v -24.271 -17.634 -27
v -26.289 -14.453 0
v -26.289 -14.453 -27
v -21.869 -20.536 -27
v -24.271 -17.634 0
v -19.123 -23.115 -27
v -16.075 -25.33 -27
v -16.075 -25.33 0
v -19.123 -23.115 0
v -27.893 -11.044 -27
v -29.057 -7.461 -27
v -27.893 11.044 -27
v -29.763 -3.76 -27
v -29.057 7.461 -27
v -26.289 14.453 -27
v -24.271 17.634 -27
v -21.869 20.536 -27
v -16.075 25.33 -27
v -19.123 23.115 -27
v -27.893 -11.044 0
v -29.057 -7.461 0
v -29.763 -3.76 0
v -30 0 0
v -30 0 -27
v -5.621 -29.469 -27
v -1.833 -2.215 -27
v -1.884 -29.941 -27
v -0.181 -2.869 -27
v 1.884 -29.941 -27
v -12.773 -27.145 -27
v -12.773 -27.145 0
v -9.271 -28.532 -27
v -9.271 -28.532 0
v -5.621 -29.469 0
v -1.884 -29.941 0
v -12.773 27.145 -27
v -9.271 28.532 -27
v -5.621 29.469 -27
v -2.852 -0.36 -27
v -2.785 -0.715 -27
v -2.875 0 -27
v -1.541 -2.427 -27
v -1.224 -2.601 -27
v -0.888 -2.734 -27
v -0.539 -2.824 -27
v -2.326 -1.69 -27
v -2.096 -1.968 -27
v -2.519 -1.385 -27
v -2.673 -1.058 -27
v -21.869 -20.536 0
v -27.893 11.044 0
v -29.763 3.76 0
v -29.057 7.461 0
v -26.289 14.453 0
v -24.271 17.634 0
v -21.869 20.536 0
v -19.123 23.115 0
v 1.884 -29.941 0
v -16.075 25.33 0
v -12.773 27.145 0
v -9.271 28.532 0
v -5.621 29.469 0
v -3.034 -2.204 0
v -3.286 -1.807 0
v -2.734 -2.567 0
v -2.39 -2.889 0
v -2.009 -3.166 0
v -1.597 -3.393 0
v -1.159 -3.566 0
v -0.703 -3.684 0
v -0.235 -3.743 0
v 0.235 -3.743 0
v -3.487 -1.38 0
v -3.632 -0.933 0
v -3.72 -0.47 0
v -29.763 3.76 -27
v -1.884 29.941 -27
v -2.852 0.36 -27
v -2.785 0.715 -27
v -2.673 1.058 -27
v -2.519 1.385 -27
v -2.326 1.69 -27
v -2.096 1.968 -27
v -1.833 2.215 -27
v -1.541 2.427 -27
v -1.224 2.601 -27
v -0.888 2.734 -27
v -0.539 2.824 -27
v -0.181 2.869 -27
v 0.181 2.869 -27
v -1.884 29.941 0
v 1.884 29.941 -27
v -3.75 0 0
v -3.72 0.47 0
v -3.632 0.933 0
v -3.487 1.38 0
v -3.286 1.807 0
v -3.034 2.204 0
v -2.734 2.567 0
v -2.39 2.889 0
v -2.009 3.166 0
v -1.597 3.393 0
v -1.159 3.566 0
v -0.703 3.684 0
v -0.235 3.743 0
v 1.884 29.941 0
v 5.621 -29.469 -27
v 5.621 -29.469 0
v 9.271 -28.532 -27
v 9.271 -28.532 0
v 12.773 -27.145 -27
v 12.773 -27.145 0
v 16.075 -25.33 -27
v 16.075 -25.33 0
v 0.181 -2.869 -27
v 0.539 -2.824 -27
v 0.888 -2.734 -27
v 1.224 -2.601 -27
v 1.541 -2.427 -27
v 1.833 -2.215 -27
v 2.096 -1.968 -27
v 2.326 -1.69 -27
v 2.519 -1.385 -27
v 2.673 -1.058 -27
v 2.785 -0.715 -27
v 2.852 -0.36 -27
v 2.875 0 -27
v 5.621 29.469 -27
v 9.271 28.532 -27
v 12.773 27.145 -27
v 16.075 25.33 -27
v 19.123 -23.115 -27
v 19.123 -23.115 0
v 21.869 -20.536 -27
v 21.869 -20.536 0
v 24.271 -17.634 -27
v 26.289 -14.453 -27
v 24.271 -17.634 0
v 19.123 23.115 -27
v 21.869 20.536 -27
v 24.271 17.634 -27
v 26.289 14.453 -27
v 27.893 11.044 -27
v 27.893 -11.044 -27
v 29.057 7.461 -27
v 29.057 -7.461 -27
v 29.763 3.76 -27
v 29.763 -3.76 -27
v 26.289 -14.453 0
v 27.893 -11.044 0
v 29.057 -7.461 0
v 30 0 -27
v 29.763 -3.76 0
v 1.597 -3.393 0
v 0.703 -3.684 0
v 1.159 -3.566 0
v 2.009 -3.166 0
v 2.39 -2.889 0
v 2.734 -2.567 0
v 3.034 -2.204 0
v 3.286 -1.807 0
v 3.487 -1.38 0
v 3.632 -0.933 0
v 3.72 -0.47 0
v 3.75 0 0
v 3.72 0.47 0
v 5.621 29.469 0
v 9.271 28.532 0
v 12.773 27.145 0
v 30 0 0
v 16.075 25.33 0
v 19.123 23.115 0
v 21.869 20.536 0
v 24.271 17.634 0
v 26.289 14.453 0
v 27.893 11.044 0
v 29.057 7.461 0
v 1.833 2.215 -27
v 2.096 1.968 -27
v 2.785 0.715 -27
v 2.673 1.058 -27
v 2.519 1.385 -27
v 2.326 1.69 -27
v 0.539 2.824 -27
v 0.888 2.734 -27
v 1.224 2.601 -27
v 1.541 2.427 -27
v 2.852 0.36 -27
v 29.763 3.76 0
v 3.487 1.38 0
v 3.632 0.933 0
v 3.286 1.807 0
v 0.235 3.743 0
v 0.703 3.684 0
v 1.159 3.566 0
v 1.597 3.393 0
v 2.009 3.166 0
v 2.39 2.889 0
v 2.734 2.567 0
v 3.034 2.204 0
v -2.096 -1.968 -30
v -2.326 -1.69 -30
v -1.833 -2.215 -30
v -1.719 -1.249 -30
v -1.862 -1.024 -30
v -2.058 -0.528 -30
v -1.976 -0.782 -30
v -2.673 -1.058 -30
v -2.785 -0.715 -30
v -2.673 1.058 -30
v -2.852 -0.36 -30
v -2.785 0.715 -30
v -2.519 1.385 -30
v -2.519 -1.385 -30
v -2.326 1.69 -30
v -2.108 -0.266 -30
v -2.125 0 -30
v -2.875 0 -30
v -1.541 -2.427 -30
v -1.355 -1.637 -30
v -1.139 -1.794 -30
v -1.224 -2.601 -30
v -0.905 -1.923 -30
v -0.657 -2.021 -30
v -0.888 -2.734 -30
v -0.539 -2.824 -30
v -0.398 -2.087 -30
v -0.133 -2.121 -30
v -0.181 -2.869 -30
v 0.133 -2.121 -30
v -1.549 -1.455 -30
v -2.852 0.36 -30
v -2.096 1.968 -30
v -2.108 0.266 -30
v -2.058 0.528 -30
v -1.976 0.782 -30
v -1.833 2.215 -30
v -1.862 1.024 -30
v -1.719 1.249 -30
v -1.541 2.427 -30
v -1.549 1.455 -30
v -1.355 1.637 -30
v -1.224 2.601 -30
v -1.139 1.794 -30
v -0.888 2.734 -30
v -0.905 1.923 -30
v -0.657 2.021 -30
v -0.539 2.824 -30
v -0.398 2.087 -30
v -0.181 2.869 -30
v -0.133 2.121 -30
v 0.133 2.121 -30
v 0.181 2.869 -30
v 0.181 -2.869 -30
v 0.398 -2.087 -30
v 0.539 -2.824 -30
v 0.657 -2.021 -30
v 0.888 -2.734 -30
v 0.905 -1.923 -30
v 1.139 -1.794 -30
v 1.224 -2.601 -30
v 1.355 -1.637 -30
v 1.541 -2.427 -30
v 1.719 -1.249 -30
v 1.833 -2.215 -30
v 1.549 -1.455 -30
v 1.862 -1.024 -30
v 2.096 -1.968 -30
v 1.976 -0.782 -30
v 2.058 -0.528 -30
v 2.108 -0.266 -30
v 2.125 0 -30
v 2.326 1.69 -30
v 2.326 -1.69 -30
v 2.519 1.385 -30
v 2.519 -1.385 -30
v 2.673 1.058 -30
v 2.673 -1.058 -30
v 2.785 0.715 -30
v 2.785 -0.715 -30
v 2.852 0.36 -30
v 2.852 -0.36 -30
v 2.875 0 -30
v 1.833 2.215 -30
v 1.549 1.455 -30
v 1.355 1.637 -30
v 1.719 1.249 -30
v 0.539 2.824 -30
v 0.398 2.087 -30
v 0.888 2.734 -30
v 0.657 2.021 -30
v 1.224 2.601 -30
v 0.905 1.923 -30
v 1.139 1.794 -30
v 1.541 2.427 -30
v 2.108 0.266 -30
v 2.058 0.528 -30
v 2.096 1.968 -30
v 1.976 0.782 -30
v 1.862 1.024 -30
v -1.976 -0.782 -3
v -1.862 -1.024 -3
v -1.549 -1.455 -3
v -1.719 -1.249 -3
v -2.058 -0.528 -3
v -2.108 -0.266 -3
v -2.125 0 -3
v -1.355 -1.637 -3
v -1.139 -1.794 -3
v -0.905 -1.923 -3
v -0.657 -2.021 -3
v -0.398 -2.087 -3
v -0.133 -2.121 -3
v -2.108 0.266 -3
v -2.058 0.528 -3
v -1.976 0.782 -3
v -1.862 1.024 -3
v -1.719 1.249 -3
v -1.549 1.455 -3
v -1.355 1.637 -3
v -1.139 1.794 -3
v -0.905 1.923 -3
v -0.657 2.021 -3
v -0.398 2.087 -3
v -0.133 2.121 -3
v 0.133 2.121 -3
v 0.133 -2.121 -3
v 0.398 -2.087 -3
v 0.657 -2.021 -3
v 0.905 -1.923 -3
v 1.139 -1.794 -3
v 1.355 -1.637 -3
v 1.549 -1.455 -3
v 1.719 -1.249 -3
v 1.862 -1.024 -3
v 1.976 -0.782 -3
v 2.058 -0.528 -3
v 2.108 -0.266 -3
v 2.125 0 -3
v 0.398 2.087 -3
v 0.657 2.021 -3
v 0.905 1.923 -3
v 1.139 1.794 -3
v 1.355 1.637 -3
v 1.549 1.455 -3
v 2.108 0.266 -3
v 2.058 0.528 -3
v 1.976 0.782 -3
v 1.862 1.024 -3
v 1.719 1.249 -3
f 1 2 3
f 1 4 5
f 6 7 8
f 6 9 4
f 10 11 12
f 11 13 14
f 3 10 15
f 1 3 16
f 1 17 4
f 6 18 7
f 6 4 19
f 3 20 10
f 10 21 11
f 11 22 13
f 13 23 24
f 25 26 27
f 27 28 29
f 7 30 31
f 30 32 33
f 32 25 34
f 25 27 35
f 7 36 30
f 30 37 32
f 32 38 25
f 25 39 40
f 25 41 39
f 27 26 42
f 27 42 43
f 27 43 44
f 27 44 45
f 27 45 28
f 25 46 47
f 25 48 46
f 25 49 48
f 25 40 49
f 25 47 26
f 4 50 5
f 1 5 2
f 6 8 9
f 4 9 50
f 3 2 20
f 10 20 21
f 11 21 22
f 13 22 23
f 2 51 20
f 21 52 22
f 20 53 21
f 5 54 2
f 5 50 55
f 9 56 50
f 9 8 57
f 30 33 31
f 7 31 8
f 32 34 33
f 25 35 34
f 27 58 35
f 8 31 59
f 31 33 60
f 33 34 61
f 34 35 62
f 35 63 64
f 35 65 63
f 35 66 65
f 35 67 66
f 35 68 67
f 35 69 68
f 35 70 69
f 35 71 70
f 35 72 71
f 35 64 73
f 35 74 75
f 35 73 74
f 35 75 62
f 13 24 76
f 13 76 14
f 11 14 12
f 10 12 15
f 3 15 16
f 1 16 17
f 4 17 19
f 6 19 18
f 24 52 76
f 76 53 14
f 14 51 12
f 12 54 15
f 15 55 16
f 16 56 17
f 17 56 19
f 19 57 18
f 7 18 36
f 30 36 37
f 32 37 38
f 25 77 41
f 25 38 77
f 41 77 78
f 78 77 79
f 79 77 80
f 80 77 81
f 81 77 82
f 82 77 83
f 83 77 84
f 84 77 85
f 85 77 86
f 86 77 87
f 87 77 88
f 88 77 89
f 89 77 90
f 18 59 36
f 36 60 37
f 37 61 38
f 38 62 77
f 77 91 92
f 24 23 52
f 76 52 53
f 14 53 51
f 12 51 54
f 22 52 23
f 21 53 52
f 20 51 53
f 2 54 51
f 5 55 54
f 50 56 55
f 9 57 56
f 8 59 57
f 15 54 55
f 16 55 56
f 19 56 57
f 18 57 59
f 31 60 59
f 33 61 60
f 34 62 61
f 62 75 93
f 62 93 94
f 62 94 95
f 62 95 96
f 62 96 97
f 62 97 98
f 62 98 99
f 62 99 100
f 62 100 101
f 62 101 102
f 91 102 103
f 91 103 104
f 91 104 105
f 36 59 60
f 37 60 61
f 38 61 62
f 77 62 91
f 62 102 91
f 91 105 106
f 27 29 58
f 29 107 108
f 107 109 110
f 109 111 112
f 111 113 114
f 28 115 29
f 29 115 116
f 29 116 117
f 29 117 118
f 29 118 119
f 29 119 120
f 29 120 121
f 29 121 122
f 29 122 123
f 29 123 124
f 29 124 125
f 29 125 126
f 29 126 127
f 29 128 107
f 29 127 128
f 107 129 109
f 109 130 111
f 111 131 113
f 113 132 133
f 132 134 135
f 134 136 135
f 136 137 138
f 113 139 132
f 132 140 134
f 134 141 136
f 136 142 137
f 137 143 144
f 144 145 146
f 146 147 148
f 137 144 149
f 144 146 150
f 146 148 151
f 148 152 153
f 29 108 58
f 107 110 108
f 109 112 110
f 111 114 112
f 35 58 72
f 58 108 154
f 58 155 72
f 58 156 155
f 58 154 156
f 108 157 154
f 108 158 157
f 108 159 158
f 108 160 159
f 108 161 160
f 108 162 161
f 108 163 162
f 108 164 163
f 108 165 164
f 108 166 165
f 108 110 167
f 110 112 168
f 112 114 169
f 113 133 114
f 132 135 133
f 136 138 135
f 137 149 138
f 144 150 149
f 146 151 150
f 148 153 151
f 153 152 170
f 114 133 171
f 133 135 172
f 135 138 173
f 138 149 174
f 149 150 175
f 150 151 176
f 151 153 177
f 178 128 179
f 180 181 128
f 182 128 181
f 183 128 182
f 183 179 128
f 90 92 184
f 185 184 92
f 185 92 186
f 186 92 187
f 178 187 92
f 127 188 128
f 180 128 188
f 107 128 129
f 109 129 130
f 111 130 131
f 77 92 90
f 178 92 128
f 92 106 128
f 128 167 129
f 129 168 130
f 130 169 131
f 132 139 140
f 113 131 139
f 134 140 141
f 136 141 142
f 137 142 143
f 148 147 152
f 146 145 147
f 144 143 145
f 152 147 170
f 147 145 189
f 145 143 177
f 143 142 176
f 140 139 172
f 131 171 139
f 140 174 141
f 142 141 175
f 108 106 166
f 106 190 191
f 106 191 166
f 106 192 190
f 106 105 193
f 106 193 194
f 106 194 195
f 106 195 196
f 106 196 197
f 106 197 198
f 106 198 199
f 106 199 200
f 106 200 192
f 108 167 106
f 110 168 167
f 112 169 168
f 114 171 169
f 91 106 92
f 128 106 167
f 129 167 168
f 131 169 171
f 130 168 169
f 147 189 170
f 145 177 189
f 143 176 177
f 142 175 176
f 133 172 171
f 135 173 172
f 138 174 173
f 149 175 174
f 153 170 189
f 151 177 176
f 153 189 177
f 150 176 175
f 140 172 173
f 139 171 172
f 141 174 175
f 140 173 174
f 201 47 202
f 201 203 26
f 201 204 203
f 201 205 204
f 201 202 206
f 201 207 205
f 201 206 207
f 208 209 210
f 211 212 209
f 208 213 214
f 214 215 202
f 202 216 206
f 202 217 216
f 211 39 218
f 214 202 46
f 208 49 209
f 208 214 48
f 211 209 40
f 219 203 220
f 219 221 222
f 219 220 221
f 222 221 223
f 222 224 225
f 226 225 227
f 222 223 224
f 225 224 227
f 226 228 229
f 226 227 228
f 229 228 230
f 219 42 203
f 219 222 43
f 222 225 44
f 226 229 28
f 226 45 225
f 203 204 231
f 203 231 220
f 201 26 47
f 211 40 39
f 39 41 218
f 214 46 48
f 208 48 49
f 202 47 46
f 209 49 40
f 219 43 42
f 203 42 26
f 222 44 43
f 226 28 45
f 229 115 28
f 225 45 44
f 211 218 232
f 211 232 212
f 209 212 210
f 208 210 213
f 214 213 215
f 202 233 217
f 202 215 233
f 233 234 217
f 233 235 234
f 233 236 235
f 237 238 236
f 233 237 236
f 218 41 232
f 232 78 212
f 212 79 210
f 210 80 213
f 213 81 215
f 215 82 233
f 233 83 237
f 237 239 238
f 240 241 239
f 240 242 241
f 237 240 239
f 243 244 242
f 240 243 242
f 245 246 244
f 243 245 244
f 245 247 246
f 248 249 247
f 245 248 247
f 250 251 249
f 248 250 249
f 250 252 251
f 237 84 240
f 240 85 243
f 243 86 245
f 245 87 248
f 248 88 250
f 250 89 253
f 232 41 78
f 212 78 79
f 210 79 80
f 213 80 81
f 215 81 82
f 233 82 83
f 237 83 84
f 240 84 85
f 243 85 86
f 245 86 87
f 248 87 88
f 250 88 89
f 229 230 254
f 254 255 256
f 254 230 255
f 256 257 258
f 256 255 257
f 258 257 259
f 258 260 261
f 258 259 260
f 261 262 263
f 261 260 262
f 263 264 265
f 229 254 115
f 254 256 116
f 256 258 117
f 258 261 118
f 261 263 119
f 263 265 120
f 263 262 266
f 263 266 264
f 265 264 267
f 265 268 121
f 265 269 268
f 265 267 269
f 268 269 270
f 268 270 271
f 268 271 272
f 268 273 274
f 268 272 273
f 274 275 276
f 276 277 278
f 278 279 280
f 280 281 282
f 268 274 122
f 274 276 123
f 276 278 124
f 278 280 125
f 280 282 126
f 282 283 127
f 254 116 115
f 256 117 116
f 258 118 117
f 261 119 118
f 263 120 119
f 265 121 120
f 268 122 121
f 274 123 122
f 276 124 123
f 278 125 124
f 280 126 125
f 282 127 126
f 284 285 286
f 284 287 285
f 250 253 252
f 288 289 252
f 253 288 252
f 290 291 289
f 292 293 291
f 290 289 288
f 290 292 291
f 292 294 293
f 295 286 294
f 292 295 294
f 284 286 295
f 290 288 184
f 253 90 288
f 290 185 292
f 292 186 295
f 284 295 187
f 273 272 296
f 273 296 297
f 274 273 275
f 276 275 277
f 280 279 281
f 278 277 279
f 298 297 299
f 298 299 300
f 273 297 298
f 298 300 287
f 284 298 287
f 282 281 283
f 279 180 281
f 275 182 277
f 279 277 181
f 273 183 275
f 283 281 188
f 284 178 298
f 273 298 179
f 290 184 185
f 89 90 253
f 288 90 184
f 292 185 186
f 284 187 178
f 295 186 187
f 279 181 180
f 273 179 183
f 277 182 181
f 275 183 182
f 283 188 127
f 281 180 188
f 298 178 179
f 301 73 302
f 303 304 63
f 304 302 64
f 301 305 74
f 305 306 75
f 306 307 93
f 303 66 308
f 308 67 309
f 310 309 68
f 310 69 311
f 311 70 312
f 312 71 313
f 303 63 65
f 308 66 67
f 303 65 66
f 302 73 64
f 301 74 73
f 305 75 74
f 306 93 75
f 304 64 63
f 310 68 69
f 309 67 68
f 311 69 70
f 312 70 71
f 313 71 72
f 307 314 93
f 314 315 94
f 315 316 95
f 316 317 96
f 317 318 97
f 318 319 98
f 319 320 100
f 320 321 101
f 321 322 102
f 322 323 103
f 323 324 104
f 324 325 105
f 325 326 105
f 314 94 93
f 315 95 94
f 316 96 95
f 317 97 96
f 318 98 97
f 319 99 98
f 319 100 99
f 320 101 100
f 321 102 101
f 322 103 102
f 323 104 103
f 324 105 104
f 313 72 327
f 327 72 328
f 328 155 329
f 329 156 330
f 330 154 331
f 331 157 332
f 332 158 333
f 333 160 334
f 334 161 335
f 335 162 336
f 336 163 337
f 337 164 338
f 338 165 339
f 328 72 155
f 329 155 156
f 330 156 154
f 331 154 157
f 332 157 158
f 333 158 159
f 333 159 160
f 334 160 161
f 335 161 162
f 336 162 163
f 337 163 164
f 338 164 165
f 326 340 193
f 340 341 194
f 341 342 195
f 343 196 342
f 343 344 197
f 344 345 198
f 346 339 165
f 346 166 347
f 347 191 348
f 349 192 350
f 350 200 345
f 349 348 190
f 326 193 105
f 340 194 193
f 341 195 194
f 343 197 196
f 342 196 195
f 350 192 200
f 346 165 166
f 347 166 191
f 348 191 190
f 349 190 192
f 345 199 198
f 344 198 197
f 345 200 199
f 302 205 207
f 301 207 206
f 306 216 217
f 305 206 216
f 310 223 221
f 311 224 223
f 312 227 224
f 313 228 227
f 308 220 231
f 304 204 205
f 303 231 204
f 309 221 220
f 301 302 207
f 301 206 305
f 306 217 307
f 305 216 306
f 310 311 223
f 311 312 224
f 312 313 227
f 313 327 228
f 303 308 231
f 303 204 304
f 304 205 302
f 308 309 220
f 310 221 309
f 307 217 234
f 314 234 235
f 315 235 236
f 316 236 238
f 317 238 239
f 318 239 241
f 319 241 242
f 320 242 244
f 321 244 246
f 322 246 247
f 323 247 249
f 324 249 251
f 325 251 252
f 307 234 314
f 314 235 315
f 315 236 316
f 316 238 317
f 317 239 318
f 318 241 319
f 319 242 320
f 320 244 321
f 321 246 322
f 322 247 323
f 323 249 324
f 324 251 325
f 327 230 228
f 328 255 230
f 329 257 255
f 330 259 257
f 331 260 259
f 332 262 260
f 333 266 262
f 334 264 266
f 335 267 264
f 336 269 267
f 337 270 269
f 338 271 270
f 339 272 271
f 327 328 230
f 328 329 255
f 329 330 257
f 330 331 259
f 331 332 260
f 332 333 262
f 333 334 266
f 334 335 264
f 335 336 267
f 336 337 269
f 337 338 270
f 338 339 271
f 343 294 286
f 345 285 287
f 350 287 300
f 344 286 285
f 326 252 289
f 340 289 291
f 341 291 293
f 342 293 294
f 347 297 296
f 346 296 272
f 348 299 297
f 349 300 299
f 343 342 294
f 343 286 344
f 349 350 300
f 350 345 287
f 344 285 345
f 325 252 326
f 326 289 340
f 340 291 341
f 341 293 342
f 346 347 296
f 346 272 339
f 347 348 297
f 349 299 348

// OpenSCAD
$fn = 50;


difference() {
	union() {
		translate(v = [0, 0, -27.0000000000]) {
			cylinder(h = 27, r = 30.0000000000);
		}
		#translate(v = [0, 0, -30.0000000000]) {
			cylinder(h = 30, r = 2.8750000000);
		}
	}
	union() {
		translate(v = [0, 0, 0]) {
			rotate(a = [0, 0, 0]) {
				difference() {
					union() {
						translate(v = [0, 0, -30.0000000000]) {
							cylinder(h = 30, r = 2.0000000000);
						}
						translate(v = [0, 0, -3]) {
							cylinder(h = 3, r1 = 2.1250000000, r2 = 3.7500000000);
						}
						translate(v = [0, 0, -30.0000000000]) {
							cylinder(h = 30, r = 2.1250000000);
						}
						translate(v = [0, 0, -30.0000000000]) {
							cylinder(h = 30, r = 2.0000000000);
						}
					}
					union();
				}
			}
		}
	}
}
